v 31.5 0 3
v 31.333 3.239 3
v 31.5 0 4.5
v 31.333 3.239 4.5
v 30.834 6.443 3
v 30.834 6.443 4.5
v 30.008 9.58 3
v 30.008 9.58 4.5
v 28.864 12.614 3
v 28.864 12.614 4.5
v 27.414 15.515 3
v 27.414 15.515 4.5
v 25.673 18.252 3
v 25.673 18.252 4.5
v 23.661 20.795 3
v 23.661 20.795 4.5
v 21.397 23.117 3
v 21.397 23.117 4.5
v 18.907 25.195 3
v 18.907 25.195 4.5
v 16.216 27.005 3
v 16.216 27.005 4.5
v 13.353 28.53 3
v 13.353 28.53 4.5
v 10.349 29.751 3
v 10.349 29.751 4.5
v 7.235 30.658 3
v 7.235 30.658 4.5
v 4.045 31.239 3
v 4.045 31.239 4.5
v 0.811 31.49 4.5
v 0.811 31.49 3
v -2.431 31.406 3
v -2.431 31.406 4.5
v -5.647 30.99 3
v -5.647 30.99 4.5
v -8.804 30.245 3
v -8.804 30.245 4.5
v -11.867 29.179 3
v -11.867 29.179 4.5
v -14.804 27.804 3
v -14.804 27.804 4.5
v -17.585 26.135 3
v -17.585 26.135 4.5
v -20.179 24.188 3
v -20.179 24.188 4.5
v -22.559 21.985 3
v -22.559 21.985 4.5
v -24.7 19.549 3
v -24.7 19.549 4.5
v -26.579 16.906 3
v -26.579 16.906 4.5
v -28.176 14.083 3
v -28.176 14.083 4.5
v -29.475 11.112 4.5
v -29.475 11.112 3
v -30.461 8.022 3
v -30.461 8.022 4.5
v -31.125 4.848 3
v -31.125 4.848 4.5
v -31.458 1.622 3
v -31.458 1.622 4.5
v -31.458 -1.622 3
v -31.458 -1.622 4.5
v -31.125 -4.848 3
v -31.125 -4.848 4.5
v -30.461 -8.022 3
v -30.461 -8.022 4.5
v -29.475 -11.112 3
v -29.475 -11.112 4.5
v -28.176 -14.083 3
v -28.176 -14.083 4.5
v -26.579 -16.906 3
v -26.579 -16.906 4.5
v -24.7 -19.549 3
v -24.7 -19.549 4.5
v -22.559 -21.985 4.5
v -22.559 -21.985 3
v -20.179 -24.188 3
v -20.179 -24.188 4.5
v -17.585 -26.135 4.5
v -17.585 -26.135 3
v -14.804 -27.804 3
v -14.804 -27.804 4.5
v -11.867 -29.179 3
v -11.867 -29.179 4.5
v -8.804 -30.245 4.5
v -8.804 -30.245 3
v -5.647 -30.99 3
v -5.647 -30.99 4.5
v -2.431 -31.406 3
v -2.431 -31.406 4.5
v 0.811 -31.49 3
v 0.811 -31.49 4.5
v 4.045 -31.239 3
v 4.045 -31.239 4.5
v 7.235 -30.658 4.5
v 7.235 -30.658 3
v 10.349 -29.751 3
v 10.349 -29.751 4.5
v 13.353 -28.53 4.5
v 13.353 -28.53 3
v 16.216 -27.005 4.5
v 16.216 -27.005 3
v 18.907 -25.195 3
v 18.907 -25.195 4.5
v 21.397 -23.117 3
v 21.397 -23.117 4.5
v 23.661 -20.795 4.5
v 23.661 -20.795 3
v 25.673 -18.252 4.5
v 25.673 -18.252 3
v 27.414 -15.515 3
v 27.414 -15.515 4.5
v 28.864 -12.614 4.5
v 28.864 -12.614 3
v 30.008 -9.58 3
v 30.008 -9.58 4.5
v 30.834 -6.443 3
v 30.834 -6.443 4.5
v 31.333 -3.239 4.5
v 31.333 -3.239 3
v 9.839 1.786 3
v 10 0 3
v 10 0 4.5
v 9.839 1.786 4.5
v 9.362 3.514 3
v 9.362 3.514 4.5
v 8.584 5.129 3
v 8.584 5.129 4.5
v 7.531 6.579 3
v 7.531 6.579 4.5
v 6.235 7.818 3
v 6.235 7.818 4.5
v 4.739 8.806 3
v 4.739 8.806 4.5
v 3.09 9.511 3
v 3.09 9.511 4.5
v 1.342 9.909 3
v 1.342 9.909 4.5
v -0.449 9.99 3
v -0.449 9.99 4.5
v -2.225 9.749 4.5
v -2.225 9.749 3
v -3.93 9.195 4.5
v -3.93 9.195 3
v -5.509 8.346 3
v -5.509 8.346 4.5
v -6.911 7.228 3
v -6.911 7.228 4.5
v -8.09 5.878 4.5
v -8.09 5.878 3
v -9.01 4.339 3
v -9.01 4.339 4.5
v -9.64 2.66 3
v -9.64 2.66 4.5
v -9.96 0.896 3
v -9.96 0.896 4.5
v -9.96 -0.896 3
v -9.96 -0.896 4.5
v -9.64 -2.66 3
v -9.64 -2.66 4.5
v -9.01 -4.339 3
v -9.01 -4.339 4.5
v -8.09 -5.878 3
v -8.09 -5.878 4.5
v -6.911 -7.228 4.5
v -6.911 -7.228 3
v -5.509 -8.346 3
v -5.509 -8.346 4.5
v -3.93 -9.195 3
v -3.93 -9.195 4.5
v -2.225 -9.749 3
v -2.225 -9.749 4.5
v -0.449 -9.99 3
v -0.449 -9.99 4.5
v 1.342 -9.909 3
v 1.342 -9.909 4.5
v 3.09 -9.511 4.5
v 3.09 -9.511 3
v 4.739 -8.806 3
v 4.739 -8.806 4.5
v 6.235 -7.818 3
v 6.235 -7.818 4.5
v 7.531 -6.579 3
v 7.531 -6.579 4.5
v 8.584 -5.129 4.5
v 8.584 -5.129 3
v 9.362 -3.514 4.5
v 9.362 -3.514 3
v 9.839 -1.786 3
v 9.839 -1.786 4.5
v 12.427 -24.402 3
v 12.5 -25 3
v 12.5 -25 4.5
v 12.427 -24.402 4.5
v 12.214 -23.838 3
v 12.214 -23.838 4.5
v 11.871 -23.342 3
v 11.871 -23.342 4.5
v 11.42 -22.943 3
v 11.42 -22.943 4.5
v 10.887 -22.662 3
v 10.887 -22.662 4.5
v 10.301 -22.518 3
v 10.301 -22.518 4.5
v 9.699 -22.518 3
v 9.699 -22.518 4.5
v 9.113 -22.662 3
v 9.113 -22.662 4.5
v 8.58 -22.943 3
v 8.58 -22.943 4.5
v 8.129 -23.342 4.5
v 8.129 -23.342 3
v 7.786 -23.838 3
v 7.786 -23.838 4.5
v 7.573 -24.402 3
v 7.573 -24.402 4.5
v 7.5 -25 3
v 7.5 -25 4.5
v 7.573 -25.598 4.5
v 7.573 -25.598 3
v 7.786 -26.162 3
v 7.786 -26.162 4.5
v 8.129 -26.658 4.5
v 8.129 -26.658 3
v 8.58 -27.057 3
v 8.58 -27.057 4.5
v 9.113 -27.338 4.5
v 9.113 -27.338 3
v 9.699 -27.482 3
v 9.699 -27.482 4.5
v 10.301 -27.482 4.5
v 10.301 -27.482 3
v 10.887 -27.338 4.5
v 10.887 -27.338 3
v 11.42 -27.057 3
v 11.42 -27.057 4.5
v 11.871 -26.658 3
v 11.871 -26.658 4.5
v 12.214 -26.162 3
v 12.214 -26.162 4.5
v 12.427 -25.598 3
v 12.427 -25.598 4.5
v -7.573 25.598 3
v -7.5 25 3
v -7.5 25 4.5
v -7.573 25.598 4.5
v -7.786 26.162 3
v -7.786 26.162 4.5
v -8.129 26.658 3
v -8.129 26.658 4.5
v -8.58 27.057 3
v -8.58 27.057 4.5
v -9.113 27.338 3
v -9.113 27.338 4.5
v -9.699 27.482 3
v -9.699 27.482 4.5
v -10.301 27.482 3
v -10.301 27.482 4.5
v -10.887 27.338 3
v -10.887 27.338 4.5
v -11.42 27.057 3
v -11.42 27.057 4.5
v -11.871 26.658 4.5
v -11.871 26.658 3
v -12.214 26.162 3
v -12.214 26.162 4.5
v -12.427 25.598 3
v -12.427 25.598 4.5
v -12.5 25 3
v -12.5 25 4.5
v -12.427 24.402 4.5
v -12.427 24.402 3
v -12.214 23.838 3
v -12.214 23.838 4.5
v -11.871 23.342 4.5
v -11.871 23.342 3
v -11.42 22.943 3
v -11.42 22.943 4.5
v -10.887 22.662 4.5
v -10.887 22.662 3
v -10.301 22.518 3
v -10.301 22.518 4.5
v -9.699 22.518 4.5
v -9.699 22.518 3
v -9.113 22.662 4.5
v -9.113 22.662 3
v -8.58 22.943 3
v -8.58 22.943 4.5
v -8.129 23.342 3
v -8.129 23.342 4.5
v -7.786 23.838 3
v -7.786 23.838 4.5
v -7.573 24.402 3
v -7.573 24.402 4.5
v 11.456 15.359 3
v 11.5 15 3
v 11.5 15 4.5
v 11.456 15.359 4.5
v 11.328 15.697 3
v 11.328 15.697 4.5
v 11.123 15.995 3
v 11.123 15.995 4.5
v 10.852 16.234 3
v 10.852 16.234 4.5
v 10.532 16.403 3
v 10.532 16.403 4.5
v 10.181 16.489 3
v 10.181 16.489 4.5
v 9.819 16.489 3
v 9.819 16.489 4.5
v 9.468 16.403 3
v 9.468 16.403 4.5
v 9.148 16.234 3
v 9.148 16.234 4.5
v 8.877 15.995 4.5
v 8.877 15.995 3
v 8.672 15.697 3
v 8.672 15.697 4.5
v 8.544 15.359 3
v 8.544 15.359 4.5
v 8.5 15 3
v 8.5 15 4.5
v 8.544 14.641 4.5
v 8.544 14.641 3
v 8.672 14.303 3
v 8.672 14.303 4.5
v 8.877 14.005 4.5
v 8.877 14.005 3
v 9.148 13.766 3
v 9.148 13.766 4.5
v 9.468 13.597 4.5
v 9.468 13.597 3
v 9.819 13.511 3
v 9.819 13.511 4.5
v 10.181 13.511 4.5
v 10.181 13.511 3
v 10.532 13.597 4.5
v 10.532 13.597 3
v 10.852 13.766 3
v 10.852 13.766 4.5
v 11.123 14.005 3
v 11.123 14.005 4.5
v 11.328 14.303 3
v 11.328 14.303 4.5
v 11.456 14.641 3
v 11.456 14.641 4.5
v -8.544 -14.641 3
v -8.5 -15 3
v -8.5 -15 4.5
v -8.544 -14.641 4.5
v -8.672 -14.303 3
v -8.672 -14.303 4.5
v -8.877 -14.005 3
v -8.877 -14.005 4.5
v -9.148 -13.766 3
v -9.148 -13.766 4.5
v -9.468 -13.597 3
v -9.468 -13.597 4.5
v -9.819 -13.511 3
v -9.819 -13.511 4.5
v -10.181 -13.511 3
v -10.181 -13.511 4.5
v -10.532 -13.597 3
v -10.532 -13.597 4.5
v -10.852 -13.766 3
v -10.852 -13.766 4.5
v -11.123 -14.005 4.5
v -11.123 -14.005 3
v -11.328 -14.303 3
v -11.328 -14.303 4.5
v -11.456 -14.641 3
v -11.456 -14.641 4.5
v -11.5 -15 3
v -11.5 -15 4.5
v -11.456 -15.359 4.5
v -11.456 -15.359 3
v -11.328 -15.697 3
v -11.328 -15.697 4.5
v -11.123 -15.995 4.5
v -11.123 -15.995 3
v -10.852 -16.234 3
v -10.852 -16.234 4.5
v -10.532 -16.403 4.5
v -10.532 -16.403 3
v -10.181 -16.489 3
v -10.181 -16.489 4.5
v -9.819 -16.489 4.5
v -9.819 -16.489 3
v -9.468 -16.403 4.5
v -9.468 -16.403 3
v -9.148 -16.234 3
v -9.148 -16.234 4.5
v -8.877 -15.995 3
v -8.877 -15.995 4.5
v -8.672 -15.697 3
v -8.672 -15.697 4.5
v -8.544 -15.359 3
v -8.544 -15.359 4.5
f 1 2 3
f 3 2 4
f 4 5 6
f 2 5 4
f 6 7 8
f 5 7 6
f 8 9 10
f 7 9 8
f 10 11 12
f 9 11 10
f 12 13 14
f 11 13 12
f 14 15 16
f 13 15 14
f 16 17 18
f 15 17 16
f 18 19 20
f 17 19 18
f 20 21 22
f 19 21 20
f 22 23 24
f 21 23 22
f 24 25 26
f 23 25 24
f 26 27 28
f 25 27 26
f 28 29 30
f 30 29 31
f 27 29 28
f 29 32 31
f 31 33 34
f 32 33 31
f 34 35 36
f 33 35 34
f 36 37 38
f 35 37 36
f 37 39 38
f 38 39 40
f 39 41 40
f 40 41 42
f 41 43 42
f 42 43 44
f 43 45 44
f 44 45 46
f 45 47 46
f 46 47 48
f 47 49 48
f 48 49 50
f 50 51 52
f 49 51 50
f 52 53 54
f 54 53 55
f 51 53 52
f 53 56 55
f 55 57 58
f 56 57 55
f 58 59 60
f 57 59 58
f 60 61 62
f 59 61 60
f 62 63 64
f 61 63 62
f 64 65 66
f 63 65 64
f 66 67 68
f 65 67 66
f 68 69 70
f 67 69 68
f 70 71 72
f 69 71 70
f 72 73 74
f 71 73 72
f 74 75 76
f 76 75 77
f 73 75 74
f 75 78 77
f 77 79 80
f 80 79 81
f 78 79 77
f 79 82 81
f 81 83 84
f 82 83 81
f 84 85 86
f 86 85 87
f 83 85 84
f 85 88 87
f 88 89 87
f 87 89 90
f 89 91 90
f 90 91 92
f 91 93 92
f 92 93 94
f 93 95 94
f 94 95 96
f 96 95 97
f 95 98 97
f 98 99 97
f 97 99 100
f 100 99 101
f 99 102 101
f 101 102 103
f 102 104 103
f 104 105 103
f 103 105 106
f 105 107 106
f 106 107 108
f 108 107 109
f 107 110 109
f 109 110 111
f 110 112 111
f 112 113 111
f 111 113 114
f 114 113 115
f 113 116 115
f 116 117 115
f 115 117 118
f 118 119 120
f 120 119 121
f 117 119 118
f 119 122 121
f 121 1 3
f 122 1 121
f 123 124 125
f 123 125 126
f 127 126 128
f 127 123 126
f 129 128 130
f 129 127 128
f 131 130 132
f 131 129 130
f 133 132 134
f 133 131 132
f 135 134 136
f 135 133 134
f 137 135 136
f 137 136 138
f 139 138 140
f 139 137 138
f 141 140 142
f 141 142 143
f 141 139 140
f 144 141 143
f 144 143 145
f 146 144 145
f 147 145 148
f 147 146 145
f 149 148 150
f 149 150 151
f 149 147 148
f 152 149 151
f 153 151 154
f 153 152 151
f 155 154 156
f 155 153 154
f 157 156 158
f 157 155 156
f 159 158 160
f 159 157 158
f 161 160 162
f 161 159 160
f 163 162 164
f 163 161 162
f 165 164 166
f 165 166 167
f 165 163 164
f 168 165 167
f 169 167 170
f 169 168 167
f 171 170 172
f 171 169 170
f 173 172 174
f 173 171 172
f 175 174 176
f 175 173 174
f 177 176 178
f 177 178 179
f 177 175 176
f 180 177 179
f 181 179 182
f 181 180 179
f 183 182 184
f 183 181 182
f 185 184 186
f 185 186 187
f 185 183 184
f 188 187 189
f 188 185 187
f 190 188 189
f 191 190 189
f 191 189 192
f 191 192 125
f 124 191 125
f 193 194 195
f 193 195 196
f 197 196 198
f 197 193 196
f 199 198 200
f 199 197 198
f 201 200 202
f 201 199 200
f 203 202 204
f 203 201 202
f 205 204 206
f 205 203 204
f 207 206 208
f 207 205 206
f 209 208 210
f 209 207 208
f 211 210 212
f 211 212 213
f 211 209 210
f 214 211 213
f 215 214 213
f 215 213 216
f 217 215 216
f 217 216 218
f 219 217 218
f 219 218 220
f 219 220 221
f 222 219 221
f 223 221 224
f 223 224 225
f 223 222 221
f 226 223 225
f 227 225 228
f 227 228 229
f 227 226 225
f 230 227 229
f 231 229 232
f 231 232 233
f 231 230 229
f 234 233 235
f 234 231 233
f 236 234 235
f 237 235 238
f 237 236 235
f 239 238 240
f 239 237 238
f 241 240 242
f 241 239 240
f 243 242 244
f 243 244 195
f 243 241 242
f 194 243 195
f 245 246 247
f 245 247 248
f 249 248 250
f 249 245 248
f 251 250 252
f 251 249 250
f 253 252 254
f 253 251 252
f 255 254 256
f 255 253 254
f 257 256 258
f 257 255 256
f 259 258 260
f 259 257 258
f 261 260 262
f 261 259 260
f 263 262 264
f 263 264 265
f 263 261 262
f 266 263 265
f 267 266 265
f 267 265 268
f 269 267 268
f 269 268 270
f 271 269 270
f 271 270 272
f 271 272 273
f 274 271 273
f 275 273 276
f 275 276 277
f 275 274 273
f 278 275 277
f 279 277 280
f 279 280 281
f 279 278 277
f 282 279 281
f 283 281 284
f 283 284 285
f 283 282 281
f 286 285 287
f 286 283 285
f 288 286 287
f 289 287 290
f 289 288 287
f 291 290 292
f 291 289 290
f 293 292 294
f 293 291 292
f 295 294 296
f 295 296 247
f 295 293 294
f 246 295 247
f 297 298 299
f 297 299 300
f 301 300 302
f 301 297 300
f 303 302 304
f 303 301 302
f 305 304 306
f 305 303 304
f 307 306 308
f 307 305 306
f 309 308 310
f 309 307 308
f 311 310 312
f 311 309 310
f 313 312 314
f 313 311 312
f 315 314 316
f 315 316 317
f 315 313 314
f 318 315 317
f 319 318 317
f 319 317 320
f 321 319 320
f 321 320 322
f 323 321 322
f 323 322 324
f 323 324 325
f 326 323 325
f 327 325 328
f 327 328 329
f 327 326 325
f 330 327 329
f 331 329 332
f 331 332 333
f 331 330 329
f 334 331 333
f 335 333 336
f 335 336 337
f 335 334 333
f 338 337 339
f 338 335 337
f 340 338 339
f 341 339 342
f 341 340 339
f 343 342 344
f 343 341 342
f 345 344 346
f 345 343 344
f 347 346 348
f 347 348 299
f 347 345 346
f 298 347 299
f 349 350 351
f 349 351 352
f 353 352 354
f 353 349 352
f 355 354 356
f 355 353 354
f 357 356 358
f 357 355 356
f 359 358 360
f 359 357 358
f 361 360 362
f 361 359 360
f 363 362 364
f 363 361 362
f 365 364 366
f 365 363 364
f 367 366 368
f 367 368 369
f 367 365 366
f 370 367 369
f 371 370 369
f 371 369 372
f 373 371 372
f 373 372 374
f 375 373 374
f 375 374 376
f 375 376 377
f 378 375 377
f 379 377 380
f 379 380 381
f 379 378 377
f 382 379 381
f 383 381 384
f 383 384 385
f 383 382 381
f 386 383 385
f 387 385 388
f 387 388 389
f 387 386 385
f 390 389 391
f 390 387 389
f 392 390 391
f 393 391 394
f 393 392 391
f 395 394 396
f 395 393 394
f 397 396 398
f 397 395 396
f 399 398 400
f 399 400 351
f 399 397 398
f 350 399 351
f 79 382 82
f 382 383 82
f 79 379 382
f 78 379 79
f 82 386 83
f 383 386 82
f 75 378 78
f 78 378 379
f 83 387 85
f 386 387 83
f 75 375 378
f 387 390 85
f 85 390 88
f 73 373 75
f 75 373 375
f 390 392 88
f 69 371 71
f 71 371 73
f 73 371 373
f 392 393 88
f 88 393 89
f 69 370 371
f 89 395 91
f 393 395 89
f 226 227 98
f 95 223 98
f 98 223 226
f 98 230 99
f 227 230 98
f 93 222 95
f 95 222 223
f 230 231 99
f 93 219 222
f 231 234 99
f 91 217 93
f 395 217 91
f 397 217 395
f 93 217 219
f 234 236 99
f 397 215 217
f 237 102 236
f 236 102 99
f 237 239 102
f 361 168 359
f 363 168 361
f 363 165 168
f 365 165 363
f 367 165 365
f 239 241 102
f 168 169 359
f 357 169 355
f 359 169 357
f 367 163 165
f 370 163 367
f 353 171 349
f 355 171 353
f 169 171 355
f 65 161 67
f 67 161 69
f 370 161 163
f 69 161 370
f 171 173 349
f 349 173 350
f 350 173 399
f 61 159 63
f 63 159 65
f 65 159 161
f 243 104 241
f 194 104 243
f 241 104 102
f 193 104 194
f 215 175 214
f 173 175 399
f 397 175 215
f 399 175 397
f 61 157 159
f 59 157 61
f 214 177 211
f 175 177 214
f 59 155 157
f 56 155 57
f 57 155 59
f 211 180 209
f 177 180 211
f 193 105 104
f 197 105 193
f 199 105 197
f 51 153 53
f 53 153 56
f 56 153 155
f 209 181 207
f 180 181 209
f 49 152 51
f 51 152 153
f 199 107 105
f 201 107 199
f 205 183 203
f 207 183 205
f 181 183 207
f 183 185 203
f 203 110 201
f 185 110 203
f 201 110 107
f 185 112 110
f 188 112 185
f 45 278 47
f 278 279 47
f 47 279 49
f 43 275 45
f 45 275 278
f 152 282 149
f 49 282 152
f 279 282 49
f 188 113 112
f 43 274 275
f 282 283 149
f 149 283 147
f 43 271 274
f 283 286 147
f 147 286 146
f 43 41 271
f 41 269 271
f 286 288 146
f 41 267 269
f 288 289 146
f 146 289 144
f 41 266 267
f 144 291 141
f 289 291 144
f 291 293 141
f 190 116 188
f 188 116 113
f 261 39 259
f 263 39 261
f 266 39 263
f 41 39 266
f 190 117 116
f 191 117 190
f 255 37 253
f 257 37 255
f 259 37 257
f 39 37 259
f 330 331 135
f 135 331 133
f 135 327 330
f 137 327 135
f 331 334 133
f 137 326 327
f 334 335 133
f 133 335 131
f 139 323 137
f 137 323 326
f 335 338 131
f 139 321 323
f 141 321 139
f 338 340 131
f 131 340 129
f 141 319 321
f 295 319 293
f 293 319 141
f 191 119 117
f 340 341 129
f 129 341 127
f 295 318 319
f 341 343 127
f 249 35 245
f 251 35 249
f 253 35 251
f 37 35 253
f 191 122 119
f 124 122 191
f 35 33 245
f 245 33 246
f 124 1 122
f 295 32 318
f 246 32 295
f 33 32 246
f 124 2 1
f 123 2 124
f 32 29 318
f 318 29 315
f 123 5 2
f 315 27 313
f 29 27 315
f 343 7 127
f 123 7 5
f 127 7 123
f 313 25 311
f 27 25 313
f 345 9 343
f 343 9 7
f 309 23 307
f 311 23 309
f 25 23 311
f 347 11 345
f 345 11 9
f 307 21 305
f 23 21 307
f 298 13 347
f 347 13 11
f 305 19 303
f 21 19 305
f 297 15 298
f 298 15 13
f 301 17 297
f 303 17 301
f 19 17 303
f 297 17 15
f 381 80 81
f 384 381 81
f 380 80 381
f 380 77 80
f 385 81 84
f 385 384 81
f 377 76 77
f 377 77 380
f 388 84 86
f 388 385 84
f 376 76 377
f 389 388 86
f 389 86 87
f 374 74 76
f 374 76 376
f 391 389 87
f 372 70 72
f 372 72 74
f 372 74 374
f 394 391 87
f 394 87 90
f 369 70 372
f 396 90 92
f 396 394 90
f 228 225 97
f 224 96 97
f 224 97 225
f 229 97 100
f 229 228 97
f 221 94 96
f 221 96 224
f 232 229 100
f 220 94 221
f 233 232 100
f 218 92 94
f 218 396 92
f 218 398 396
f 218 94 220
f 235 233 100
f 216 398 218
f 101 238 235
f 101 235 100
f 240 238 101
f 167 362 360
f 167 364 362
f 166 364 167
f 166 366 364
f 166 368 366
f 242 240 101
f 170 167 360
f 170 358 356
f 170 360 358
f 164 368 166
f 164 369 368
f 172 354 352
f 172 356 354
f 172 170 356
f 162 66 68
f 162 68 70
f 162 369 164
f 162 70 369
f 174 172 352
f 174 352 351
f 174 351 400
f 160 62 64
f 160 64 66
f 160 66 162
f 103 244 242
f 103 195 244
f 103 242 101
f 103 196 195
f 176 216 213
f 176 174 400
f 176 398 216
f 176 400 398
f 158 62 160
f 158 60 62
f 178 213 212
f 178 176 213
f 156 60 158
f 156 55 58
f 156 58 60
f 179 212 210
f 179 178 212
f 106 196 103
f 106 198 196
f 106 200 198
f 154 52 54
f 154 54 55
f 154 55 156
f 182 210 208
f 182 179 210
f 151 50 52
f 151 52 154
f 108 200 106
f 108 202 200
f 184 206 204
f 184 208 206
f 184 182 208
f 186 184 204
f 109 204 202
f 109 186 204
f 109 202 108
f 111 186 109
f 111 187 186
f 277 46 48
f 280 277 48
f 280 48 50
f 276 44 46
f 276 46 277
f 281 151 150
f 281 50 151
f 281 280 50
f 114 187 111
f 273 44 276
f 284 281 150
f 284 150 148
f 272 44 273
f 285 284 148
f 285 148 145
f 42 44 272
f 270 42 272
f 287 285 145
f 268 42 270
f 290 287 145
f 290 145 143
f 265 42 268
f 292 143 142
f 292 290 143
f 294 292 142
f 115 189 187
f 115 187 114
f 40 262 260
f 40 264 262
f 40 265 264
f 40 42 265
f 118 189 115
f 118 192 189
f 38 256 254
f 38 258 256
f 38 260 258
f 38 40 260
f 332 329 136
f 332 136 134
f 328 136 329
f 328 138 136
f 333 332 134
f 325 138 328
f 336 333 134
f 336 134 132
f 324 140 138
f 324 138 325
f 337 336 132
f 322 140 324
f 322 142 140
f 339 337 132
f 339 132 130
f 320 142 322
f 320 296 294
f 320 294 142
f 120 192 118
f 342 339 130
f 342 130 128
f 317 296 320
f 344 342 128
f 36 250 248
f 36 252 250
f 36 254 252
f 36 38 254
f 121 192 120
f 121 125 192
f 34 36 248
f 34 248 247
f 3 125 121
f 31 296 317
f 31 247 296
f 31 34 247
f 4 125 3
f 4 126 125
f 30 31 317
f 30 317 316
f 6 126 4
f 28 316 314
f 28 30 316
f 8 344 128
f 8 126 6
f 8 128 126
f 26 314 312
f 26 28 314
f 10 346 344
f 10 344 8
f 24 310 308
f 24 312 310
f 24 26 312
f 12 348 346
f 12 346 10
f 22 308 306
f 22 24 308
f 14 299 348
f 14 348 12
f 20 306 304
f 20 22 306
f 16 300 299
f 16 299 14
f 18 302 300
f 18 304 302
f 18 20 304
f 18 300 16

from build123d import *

# Parameters (mm, degrees)
SKETCH005_R   = 31.5
SKETCH005_R_2 = 2.5
SKETCH005_R_3 = 1.5
SKETCH005_R_4 = 10
PAD_DEPTH     = 1.5


with BuildPart() as part:
    # Sketch005 → Pad (new body)
    with BuildSketch(Plane.XY.offset(3)):
        Circle(SKETCH005_R)
        with Locations((-10, 25)):
            Circle(SKETCH005_R_2, mode=Mode.SUBTRACT)
        with Locations((10, -25)):
            Circle(SKETCH005_R_2, mode=Mode.SUBTRACT)
        with Locations((-10, -15)):
            Circle(SKETCH005_R_3, mode=Mode.SUBTRACT)
        with Locations((10, 15)):
            Circle(SKETCH005_R_3, mode=Mode.SUBTRACT)
        Circle(SKETCH005_R_4, mode=Mode.SUBTRACT)
    extrude(amount=PAD_DEPTH)


solid = part.part
